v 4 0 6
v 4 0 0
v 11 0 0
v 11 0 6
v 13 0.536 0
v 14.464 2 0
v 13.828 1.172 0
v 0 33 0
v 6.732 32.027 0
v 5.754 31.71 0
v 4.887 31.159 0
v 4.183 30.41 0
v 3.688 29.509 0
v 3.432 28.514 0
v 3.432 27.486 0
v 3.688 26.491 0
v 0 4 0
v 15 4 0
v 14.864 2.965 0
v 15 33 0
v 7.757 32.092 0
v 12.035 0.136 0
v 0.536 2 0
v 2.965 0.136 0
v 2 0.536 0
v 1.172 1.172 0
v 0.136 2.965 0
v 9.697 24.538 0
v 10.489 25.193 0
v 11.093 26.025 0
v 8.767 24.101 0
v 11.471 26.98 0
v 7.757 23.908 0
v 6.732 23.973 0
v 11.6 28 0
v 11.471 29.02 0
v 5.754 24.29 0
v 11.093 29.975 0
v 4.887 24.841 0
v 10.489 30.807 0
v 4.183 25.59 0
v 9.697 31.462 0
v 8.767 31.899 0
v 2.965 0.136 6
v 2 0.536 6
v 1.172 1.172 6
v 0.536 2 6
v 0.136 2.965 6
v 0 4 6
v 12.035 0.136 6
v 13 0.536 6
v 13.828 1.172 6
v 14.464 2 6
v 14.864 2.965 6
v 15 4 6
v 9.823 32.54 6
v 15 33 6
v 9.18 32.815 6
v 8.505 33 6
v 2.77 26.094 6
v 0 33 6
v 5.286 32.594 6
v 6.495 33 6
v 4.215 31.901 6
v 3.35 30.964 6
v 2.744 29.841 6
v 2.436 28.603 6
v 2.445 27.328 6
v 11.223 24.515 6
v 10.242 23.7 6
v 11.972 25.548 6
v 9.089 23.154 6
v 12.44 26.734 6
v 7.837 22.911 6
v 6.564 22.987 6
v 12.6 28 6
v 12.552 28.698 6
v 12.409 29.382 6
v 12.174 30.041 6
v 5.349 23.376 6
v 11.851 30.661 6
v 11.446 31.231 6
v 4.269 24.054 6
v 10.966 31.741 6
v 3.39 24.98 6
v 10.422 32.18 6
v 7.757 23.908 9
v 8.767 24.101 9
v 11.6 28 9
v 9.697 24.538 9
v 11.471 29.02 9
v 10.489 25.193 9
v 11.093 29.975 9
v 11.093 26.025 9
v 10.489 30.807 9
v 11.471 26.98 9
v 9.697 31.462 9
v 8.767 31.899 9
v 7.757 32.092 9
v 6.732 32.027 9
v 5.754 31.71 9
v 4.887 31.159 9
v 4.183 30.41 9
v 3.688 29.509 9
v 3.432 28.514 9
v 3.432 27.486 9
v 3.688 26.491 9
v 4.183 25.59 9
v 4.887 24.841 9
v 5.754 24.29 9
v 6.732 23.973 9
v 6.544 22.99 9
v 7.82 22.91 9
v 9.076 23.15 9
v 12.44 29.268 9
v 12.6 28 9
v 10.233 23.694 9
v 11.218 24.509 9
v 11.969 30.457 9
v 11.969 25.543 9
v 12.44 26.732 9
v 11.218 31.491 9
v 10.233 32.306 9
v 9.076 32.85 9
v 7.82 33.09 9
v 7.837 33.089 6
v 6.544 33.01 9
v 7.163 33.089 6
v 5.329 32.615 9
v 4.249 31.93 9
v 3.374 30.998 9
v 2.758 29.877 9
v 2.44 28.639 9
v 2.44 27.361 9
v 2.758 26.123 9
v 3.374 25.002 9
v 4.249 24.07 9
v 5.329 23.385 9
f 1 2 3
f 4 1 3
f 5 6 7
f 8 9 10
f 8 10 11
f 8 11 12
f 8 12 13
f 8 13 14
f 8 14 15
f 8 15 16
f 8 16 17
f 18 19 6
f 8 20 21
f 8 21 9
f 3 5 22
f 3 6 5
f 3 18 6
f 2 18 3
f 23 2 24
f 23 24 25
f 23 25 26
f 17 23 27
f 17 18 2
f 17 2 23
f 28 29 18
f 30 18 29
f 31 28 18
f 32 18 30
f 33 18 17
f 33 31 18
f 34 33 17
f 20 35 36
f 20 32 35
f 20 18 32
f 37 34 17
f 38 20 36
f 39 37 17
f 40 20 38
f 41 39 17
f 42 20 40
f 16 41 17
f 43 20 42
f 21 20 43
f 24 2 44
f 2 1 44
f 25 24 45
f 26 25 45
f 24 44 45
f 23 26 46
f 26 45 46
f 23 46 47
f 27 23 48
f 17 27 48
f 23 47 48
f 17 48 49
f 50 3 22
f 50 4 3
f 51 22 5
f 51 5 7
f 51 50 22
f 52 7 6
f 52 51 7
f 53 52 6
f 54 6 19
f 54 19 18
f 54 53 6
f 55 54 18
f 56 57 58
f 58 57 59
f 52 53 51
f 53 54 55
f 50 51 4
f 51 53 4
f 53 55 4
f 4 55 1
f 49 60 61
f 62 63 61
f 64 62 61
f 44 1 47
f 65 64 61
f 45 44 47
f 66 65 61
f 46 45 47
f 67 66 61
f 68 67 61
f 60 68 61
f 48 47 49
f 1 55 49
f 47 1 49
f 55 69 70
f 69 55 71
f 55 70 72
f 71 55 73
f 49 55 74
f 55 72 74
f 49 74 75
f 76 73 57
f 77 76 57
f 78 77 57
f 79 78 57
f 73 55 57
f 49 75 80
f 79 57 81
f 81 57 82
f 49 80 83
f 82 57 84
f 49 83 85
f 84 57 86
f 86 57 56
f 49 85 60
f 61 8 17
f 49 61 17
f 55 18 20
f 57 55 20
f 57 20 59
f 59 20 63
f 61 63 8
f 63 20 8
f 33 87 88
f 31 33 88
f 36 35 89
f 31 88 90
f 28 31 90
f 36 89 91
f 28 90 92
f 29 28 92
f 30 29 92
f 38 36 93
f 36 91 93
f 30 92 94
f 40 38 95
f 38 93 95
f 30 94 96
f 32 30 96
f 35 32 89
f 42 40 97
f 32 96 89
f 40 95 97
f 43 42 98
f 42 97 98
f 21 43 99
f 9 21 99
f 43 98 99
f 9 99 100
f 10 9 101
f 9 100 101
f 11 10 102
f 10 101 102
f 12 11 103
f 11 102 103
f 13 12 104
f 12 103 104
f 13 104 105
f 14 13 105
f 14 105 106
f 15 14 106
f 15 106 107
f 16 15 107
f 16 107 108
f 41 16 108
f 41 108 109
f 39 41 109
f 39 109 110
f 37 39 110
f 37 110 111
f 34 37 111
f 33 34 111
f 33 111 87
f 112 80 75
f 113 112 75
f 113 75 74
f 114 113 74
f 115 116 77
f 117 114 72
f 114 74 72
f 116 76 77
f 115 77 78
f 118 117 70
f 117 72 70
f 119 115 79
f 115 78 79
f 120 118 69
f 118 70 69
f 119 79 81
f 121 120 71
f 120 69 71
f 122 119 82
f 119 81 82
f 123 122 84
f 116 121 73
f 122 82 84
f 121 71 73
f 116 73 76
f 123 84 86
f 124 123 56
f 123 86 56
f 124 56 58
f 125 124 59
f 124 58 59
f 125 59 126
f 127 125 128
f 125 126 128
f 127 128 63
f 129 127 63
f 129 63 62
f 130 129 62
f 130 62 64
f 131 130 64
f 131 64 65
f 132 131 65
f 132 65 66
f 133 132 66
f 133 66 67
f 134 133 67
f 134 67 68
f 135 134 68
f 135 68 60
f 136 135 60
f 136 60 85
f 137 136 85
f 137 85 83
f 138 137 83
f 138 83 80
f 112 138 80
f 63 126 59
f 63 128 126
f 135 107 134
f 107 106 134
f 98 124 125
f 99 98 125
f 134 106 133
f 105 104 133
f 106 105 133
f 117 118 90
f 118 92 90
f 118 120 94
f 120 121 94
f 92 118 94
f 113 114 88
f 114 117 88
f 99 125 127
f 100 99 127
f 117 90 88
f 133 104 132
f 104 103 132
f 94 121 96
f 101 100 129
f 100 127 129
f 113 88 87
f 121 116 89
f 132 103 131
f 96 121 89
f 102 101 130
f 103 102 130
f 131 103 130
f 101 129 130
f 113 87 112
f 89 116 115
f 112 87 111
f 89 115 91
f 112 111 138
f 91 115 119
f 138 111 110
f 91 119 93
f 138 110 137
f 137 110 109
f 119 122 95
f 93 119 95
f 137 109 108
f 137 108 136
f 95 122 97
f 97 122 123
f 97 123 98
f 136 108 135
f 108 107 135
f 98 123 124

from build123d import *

# Parameters (mm, degrees)
SKETCH_W     = 15
SKETCH_H     = 33
PAD_DEPTH    = 6
SKETCH001_R  = 5.1
PAD001_DEPTH = 3
SKETCH002_R  = 4.1
POCKET_DEPTH = 9.001
FILLET_R     = 4


with BuildPart() as part:
    # Sketch → Pad (new body)
    with BuildSketch(Plane.XY):
        with Locations((7.5, 16.5)):
            Rectangle(SKETCH_W, SKETCH_H)
    extrude(amount=PAD_DEPTH)

    # Sketch001 → Pad001 (new body)
    with BuildSketch(Plane.XY.offset(6)):
        with Locations((7.5, 28)):
            Circle(SKETCH001_R)
    extrude(amount=PAD001_DEPTH)

    # Sketch002 → Pocket (cut, through all)
    with BuildSketch(Plane.XY.offset(9)):
        with Locations((7.5, 28)):
            Circle(SKETCH002_R)
    extrude(amount=-POCKET_DEPTH, mode=Mode.SUBTRACT)

    # Fillet
    fillet_edges = [part.edges().sort_by_distance(p)[0] for p in [
        (0, 0, 3),
        (15, 0, 3),
    ]]
    fillet(fillet_edges, radius=FILLET_R)


solid = part.part
